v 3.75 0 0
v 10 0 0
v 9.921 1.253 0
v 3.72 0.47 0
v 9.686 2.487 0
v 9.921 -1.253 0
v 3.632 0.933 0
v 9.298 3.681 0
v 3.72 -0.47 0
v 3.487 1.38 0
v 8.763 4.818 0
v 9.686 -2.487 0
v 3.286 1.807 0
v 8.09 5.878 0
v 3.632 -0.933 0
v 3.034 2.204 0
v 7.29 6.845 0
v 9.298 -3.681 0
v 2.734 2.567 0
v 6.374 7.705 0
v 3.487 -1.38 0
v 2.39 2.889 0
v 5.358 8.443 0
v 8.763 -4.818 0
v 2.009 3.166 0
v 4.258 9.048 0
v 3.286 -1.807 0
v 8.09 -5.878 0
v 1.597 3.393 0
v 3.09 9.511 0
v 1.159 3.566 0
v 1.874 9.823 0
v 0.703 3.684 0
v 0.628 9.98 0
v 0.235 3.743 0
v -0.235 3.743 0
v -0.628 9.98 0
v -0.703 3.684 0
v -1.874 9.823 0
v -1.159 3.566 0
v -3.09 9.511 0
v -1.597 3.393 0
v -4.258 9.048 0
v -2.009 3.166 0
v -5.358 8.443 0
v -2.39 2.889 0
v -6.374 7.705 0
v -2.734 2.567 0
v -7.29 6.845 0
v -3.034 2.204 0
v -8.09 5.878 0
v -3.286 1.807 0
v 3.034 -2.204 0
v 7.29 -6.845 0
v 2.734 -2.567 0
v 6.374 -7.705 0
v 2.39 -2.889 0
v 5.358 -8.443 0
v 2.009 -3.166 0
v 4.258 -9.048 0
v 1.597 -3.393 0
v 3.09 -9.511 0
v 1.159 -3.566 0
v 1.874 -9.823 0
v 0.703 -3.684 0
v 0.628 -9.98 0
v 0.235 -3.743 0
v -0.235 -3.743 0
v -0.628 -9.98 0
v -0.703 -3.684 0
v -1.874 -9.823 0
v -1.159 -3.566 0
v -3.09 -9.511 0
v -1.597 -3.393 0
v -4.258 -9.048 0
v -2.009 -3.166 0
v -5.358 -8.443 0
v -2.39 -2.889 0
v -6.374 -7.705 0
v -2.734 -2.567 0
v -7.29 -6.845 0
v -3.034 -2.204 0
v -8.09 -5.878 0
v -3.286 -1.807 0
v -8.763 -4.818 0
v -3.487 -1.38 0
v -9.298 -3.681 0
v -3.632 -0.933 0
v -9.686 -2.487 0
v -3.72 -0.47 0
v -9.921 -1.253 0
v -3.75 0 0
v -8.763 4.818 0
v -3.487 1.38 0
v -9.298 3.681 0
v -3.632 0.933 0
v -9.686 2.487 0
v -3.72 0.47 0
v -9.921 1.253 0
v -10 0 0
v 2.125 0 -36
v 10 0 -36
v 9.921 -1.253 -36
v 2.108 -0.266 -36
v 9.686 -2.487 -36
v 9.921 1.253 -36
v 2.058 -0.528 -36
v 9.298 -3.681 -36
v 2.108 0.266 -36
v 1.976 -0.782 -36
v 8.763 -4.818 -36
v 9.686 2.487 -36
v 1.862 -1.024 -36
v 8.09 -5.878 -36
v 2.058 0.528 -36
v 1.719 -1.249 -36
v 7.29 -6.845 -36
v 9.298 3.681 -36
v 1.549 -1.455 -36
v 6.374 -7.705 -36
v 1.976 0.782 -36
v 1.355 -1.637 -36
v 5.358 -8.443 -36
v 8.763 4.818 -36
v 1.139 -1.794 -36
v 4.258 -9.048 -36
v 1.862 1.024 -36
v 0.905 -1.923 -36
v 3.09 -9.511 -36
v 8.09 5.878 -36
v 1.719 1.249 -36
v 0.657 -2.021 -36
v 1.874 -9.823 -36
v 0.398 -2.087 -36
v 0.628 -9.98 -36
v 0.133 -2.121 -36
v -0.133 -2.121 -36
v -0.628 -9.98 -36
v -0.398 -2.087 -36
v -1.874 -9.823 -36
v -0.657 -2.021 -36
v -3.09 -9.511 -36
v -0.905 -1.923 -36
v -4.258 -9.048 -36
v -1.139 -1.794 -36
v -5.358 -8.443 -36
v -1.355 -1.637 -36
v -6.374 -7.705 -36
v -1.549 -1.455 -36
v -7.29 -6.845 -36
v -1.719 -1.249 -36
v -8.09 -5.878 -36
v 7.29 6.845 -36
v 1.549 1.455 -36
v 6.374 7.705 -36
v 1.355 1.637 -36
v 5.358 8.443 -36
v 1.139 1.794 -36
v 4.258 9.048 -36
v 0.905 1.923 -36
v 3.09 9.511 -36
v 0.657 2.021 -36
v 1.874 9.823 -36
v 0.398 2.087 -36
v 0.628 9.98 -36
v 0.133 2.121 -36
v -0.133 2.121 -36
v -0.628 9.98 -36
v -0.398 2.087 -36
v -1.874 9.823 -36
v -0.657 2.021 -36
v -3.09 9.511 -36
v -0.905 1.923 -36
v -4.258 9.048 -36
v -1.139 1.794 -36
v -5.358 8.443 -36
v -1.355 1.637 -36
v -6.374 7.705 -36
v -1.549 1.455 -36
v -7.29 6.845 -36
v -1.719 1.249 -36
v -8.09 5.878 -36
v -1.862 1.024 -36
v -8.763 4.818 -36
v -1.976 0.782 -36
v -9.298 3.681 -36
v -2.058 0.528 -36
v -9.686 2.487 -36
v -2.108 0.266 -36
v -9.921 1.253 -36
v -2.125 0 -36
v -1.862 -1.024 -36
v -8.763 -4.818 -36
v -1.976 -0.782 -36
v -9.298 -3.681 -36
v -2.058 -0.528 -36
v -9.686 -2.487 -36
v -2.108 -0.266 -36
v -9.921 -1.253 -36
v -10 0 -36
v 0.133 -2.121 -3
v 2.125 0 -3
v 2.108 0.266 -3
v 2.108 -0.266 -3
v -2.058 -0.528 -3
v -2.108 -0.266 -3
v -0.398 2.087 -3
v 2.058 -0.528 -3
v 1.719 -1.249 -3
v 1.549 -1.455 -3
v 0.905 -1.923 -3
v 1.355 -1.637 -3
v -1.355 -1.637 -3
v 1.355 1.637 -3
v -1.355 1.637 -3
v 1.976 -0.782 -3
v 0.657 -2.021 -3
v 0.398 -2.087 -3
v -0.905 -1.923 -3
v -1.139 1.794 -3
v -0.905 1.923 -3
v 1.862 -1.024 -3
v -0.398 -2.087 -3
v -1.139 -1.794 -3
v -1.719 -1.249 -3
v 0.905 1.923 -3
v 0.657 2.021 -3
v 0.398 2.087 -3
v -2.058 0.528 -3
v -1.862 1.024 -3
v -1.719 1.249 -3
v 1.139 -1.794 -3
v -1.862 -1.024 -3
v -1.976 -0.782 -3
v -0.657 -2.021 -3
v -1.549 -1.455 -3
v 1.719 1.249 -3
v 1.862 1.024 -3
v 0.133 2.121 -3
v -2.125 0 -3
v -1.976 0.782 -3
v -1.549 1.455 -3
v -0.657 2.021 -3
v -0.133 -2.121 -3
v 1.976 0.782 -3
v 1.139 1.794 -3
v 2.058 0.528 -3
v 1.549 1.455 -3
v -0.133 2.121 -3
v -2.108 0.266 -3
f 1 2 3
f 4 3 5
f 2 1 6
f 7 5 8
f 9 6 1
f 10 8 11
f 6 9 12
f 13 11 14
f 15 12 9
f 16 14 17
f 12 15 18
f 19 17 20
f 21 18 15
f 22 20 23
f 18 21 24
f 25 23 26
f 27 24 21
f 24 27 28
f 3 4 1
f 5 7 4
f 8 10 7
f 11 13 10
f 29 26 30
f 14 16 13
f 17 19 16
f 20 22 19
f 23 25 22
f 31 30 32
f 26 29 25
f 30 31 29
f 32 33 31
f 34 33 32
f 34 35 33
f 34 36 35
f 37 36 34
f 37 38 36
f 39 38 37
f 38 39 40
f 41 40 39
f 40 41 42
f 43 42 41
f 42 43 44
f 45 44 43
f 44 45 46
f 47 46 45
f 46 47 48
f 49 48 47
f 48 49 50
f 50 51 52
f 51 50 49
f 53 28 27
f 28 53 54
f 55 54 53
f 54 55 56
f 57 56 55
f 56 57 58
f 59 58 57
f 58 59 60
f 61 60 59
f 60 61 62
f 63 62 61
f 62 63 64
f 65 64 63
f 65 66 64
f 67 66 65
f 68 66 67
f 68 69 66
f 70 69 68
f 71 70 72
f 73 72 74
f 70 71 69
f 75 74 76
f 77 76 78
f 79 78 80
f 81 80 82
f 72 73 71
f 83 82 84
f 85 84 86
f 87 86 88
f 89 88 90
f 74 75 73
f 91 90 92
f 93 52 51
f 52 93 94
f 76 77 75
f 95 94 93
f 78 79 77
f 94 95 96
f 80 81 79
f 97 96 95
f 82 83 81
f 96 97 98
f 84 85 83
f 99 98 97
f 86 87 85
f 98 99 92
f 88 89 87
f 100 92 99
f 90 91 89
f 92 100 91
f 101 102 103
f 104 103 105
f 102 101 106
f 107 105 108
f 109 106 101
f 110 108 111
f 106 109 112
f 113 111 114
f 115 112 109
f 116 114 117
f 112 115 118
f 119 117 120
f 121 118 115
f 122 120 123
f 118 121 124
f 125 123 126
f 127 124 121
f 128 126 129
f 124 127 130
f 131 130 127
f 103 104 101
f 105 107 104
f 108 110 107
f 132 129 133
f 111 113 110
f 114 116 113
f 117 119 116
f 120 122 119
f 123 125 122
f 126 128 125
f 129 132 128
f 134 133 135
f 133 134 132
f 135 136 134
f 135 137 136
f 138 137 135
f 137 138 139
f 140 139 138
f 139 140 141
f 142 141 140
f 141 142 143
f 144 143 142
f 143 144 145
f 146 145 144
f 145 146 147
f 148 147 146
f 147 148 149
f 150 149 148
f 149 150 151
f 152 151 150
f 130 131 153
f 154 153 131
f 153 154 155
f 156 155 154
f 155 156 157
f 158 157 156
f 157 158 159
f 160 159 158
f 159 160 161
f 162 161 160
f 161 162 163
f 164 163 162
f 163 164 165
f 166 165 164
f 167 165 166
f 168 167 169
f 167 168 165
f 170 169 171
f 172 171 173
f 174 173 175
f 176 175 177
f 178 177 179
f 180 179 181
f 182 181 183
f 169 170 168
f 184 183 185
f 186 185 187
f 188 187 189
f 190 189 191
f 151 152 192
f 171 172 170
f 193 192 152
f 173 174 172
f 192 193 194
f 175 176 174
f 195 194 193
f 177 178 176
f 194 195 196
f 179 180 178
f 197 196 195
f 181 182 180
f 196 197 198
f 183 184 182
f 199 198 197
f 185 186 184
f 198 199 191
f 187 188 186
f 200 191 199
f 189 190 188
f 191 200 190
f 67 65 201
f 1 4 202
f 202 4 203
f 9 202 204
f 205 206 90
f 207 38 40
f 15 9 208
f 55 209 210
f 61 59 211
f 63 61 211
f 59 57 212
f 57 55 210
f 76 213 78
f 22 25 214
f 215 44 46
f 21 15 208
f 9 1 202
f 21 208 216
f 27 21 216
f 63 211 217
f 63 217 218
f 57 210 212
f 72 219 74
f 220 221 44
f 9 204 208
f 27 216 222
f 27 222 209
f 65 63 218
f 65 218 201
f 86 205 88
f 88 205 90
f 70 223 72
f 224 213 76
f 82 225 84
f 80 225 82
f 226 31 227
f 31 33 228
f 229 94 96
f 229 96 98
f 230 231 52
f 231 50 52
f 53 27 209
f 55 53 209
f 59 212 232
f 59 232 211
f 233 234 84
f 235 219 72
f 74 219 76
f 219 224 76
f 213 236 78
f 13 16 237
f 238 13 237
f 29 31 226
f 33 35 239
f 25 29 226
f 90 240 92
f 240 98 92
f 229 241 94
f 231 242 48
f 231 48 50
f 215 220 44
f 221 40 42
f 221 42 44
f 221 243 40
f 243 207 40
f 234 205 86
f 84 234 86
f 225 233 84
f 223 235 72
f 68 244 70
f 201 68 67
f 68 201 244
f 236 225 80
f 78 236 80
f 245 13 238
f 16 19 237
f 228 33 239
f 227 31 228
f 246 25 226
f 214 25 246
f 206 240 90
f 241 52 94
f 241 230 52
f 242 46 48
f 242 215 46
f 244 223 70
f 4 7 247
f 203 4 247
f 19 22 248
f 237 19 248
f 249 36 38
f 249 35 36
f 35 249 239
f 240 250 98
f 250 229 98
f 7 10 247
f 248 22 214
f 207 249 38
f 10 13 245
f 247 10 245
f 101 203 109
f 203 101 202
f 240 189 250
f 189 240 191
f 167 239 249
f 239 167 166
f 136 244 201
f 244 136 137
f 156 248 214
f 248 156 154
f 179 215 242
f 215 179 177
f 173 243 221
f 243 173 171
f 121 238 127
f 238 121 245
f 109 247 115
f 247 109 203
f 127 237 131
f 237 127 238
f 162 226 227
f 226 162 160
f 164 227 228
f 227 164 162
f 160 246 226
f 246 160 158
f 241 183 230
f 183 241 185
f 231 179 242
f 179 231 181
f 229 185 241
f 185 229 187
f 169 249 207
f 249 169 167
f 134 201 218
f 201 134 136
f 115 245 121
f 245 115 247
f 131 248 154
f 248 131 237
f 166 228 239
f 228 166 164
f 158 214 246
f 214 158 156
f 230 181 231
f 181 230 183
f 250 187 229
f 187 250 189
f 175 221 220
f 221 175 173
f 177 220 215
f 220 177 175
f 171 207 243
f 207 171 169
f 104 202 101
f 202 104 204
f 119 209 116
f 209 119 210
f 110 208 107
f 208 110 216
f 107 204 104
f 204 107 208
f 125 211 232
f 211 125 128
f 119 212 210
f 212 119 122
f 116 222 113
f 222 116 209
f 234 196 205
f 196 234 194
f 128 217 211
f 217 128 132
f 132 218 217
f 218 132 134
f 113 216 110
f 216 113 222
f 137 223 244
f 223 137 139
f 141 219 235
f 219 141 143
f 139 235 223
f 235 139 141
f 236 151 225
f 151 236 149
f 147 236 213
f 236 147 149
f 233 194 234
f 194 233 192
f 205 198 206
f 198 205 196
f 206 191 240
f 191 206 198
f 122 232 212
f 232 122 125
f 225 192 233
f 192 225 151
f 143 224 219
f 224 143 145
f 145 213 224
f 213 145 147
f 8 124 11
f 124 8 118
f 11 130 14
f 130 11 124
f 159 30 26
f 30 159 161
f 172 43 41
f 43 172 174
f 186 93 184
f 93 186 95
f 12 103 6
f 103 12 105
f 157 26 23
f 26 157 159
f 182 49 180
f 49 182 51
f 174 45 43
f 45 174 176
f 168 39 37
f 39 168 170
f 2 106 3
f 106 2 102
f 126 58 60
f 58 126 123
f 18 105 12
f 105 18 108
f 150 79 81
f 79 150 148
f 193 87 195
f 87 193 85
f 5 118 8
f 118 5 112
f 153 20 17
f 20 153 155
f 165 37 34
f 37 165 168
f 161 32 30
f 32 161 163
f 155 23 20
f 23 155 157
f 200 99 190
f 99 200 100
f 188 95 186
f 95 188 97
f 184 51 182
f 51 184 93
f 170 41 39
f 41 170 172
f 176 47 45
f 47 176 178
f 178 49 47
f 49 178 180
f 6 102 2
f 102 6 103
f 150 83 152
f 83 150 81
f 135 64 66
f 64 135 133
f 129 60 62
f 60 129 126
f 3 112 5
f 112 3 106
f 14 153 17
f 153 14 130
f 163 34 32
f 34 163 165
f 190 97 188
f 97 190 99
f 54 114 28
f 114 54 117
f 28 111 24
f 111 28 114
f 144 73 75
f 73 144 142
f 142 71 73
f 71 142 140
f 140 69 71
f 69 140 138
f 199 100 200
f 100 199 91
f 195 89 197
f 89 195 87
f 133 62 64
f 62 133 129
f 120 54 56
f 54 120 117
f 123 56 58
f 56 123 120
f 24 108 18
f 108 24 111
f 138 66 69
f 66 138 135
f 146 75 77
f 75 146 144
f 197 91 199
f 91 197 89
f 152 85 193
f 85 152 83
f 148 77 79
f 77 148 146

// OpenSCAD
$fn = 50;


difference() {
	union() {
		translate(v = [0, 0, -36.0000000000]) {
			cylinder(h = 36, r = 10.0000000000);
		}
	}
	union() {
		translate(v = [0, 0, 0]) {
			rotate(a = [0, 0, 0]) {
				difference() {
					union() {
						#translate(v = [0, 0, -36.0000000000]) {
							cylinder(h = 36, r = 2.0000000000);
						}
						#translate(v = [0, 0, -3]) {
							cylinder(h = 3, r1 = 2.1250000000, r2 = 3.7500000000);
						}
						#translate(v = [0, 0, -36.0000000000]) {
							cylinder(h = 36, r = 2.1250000000);
						}
						#translate(v = [0, 0, -36.0000000000]) {
							cylinder(h = 36, r = 2.0000000000);
						}
					}
					union();
				}
			}
		}
	}
}
